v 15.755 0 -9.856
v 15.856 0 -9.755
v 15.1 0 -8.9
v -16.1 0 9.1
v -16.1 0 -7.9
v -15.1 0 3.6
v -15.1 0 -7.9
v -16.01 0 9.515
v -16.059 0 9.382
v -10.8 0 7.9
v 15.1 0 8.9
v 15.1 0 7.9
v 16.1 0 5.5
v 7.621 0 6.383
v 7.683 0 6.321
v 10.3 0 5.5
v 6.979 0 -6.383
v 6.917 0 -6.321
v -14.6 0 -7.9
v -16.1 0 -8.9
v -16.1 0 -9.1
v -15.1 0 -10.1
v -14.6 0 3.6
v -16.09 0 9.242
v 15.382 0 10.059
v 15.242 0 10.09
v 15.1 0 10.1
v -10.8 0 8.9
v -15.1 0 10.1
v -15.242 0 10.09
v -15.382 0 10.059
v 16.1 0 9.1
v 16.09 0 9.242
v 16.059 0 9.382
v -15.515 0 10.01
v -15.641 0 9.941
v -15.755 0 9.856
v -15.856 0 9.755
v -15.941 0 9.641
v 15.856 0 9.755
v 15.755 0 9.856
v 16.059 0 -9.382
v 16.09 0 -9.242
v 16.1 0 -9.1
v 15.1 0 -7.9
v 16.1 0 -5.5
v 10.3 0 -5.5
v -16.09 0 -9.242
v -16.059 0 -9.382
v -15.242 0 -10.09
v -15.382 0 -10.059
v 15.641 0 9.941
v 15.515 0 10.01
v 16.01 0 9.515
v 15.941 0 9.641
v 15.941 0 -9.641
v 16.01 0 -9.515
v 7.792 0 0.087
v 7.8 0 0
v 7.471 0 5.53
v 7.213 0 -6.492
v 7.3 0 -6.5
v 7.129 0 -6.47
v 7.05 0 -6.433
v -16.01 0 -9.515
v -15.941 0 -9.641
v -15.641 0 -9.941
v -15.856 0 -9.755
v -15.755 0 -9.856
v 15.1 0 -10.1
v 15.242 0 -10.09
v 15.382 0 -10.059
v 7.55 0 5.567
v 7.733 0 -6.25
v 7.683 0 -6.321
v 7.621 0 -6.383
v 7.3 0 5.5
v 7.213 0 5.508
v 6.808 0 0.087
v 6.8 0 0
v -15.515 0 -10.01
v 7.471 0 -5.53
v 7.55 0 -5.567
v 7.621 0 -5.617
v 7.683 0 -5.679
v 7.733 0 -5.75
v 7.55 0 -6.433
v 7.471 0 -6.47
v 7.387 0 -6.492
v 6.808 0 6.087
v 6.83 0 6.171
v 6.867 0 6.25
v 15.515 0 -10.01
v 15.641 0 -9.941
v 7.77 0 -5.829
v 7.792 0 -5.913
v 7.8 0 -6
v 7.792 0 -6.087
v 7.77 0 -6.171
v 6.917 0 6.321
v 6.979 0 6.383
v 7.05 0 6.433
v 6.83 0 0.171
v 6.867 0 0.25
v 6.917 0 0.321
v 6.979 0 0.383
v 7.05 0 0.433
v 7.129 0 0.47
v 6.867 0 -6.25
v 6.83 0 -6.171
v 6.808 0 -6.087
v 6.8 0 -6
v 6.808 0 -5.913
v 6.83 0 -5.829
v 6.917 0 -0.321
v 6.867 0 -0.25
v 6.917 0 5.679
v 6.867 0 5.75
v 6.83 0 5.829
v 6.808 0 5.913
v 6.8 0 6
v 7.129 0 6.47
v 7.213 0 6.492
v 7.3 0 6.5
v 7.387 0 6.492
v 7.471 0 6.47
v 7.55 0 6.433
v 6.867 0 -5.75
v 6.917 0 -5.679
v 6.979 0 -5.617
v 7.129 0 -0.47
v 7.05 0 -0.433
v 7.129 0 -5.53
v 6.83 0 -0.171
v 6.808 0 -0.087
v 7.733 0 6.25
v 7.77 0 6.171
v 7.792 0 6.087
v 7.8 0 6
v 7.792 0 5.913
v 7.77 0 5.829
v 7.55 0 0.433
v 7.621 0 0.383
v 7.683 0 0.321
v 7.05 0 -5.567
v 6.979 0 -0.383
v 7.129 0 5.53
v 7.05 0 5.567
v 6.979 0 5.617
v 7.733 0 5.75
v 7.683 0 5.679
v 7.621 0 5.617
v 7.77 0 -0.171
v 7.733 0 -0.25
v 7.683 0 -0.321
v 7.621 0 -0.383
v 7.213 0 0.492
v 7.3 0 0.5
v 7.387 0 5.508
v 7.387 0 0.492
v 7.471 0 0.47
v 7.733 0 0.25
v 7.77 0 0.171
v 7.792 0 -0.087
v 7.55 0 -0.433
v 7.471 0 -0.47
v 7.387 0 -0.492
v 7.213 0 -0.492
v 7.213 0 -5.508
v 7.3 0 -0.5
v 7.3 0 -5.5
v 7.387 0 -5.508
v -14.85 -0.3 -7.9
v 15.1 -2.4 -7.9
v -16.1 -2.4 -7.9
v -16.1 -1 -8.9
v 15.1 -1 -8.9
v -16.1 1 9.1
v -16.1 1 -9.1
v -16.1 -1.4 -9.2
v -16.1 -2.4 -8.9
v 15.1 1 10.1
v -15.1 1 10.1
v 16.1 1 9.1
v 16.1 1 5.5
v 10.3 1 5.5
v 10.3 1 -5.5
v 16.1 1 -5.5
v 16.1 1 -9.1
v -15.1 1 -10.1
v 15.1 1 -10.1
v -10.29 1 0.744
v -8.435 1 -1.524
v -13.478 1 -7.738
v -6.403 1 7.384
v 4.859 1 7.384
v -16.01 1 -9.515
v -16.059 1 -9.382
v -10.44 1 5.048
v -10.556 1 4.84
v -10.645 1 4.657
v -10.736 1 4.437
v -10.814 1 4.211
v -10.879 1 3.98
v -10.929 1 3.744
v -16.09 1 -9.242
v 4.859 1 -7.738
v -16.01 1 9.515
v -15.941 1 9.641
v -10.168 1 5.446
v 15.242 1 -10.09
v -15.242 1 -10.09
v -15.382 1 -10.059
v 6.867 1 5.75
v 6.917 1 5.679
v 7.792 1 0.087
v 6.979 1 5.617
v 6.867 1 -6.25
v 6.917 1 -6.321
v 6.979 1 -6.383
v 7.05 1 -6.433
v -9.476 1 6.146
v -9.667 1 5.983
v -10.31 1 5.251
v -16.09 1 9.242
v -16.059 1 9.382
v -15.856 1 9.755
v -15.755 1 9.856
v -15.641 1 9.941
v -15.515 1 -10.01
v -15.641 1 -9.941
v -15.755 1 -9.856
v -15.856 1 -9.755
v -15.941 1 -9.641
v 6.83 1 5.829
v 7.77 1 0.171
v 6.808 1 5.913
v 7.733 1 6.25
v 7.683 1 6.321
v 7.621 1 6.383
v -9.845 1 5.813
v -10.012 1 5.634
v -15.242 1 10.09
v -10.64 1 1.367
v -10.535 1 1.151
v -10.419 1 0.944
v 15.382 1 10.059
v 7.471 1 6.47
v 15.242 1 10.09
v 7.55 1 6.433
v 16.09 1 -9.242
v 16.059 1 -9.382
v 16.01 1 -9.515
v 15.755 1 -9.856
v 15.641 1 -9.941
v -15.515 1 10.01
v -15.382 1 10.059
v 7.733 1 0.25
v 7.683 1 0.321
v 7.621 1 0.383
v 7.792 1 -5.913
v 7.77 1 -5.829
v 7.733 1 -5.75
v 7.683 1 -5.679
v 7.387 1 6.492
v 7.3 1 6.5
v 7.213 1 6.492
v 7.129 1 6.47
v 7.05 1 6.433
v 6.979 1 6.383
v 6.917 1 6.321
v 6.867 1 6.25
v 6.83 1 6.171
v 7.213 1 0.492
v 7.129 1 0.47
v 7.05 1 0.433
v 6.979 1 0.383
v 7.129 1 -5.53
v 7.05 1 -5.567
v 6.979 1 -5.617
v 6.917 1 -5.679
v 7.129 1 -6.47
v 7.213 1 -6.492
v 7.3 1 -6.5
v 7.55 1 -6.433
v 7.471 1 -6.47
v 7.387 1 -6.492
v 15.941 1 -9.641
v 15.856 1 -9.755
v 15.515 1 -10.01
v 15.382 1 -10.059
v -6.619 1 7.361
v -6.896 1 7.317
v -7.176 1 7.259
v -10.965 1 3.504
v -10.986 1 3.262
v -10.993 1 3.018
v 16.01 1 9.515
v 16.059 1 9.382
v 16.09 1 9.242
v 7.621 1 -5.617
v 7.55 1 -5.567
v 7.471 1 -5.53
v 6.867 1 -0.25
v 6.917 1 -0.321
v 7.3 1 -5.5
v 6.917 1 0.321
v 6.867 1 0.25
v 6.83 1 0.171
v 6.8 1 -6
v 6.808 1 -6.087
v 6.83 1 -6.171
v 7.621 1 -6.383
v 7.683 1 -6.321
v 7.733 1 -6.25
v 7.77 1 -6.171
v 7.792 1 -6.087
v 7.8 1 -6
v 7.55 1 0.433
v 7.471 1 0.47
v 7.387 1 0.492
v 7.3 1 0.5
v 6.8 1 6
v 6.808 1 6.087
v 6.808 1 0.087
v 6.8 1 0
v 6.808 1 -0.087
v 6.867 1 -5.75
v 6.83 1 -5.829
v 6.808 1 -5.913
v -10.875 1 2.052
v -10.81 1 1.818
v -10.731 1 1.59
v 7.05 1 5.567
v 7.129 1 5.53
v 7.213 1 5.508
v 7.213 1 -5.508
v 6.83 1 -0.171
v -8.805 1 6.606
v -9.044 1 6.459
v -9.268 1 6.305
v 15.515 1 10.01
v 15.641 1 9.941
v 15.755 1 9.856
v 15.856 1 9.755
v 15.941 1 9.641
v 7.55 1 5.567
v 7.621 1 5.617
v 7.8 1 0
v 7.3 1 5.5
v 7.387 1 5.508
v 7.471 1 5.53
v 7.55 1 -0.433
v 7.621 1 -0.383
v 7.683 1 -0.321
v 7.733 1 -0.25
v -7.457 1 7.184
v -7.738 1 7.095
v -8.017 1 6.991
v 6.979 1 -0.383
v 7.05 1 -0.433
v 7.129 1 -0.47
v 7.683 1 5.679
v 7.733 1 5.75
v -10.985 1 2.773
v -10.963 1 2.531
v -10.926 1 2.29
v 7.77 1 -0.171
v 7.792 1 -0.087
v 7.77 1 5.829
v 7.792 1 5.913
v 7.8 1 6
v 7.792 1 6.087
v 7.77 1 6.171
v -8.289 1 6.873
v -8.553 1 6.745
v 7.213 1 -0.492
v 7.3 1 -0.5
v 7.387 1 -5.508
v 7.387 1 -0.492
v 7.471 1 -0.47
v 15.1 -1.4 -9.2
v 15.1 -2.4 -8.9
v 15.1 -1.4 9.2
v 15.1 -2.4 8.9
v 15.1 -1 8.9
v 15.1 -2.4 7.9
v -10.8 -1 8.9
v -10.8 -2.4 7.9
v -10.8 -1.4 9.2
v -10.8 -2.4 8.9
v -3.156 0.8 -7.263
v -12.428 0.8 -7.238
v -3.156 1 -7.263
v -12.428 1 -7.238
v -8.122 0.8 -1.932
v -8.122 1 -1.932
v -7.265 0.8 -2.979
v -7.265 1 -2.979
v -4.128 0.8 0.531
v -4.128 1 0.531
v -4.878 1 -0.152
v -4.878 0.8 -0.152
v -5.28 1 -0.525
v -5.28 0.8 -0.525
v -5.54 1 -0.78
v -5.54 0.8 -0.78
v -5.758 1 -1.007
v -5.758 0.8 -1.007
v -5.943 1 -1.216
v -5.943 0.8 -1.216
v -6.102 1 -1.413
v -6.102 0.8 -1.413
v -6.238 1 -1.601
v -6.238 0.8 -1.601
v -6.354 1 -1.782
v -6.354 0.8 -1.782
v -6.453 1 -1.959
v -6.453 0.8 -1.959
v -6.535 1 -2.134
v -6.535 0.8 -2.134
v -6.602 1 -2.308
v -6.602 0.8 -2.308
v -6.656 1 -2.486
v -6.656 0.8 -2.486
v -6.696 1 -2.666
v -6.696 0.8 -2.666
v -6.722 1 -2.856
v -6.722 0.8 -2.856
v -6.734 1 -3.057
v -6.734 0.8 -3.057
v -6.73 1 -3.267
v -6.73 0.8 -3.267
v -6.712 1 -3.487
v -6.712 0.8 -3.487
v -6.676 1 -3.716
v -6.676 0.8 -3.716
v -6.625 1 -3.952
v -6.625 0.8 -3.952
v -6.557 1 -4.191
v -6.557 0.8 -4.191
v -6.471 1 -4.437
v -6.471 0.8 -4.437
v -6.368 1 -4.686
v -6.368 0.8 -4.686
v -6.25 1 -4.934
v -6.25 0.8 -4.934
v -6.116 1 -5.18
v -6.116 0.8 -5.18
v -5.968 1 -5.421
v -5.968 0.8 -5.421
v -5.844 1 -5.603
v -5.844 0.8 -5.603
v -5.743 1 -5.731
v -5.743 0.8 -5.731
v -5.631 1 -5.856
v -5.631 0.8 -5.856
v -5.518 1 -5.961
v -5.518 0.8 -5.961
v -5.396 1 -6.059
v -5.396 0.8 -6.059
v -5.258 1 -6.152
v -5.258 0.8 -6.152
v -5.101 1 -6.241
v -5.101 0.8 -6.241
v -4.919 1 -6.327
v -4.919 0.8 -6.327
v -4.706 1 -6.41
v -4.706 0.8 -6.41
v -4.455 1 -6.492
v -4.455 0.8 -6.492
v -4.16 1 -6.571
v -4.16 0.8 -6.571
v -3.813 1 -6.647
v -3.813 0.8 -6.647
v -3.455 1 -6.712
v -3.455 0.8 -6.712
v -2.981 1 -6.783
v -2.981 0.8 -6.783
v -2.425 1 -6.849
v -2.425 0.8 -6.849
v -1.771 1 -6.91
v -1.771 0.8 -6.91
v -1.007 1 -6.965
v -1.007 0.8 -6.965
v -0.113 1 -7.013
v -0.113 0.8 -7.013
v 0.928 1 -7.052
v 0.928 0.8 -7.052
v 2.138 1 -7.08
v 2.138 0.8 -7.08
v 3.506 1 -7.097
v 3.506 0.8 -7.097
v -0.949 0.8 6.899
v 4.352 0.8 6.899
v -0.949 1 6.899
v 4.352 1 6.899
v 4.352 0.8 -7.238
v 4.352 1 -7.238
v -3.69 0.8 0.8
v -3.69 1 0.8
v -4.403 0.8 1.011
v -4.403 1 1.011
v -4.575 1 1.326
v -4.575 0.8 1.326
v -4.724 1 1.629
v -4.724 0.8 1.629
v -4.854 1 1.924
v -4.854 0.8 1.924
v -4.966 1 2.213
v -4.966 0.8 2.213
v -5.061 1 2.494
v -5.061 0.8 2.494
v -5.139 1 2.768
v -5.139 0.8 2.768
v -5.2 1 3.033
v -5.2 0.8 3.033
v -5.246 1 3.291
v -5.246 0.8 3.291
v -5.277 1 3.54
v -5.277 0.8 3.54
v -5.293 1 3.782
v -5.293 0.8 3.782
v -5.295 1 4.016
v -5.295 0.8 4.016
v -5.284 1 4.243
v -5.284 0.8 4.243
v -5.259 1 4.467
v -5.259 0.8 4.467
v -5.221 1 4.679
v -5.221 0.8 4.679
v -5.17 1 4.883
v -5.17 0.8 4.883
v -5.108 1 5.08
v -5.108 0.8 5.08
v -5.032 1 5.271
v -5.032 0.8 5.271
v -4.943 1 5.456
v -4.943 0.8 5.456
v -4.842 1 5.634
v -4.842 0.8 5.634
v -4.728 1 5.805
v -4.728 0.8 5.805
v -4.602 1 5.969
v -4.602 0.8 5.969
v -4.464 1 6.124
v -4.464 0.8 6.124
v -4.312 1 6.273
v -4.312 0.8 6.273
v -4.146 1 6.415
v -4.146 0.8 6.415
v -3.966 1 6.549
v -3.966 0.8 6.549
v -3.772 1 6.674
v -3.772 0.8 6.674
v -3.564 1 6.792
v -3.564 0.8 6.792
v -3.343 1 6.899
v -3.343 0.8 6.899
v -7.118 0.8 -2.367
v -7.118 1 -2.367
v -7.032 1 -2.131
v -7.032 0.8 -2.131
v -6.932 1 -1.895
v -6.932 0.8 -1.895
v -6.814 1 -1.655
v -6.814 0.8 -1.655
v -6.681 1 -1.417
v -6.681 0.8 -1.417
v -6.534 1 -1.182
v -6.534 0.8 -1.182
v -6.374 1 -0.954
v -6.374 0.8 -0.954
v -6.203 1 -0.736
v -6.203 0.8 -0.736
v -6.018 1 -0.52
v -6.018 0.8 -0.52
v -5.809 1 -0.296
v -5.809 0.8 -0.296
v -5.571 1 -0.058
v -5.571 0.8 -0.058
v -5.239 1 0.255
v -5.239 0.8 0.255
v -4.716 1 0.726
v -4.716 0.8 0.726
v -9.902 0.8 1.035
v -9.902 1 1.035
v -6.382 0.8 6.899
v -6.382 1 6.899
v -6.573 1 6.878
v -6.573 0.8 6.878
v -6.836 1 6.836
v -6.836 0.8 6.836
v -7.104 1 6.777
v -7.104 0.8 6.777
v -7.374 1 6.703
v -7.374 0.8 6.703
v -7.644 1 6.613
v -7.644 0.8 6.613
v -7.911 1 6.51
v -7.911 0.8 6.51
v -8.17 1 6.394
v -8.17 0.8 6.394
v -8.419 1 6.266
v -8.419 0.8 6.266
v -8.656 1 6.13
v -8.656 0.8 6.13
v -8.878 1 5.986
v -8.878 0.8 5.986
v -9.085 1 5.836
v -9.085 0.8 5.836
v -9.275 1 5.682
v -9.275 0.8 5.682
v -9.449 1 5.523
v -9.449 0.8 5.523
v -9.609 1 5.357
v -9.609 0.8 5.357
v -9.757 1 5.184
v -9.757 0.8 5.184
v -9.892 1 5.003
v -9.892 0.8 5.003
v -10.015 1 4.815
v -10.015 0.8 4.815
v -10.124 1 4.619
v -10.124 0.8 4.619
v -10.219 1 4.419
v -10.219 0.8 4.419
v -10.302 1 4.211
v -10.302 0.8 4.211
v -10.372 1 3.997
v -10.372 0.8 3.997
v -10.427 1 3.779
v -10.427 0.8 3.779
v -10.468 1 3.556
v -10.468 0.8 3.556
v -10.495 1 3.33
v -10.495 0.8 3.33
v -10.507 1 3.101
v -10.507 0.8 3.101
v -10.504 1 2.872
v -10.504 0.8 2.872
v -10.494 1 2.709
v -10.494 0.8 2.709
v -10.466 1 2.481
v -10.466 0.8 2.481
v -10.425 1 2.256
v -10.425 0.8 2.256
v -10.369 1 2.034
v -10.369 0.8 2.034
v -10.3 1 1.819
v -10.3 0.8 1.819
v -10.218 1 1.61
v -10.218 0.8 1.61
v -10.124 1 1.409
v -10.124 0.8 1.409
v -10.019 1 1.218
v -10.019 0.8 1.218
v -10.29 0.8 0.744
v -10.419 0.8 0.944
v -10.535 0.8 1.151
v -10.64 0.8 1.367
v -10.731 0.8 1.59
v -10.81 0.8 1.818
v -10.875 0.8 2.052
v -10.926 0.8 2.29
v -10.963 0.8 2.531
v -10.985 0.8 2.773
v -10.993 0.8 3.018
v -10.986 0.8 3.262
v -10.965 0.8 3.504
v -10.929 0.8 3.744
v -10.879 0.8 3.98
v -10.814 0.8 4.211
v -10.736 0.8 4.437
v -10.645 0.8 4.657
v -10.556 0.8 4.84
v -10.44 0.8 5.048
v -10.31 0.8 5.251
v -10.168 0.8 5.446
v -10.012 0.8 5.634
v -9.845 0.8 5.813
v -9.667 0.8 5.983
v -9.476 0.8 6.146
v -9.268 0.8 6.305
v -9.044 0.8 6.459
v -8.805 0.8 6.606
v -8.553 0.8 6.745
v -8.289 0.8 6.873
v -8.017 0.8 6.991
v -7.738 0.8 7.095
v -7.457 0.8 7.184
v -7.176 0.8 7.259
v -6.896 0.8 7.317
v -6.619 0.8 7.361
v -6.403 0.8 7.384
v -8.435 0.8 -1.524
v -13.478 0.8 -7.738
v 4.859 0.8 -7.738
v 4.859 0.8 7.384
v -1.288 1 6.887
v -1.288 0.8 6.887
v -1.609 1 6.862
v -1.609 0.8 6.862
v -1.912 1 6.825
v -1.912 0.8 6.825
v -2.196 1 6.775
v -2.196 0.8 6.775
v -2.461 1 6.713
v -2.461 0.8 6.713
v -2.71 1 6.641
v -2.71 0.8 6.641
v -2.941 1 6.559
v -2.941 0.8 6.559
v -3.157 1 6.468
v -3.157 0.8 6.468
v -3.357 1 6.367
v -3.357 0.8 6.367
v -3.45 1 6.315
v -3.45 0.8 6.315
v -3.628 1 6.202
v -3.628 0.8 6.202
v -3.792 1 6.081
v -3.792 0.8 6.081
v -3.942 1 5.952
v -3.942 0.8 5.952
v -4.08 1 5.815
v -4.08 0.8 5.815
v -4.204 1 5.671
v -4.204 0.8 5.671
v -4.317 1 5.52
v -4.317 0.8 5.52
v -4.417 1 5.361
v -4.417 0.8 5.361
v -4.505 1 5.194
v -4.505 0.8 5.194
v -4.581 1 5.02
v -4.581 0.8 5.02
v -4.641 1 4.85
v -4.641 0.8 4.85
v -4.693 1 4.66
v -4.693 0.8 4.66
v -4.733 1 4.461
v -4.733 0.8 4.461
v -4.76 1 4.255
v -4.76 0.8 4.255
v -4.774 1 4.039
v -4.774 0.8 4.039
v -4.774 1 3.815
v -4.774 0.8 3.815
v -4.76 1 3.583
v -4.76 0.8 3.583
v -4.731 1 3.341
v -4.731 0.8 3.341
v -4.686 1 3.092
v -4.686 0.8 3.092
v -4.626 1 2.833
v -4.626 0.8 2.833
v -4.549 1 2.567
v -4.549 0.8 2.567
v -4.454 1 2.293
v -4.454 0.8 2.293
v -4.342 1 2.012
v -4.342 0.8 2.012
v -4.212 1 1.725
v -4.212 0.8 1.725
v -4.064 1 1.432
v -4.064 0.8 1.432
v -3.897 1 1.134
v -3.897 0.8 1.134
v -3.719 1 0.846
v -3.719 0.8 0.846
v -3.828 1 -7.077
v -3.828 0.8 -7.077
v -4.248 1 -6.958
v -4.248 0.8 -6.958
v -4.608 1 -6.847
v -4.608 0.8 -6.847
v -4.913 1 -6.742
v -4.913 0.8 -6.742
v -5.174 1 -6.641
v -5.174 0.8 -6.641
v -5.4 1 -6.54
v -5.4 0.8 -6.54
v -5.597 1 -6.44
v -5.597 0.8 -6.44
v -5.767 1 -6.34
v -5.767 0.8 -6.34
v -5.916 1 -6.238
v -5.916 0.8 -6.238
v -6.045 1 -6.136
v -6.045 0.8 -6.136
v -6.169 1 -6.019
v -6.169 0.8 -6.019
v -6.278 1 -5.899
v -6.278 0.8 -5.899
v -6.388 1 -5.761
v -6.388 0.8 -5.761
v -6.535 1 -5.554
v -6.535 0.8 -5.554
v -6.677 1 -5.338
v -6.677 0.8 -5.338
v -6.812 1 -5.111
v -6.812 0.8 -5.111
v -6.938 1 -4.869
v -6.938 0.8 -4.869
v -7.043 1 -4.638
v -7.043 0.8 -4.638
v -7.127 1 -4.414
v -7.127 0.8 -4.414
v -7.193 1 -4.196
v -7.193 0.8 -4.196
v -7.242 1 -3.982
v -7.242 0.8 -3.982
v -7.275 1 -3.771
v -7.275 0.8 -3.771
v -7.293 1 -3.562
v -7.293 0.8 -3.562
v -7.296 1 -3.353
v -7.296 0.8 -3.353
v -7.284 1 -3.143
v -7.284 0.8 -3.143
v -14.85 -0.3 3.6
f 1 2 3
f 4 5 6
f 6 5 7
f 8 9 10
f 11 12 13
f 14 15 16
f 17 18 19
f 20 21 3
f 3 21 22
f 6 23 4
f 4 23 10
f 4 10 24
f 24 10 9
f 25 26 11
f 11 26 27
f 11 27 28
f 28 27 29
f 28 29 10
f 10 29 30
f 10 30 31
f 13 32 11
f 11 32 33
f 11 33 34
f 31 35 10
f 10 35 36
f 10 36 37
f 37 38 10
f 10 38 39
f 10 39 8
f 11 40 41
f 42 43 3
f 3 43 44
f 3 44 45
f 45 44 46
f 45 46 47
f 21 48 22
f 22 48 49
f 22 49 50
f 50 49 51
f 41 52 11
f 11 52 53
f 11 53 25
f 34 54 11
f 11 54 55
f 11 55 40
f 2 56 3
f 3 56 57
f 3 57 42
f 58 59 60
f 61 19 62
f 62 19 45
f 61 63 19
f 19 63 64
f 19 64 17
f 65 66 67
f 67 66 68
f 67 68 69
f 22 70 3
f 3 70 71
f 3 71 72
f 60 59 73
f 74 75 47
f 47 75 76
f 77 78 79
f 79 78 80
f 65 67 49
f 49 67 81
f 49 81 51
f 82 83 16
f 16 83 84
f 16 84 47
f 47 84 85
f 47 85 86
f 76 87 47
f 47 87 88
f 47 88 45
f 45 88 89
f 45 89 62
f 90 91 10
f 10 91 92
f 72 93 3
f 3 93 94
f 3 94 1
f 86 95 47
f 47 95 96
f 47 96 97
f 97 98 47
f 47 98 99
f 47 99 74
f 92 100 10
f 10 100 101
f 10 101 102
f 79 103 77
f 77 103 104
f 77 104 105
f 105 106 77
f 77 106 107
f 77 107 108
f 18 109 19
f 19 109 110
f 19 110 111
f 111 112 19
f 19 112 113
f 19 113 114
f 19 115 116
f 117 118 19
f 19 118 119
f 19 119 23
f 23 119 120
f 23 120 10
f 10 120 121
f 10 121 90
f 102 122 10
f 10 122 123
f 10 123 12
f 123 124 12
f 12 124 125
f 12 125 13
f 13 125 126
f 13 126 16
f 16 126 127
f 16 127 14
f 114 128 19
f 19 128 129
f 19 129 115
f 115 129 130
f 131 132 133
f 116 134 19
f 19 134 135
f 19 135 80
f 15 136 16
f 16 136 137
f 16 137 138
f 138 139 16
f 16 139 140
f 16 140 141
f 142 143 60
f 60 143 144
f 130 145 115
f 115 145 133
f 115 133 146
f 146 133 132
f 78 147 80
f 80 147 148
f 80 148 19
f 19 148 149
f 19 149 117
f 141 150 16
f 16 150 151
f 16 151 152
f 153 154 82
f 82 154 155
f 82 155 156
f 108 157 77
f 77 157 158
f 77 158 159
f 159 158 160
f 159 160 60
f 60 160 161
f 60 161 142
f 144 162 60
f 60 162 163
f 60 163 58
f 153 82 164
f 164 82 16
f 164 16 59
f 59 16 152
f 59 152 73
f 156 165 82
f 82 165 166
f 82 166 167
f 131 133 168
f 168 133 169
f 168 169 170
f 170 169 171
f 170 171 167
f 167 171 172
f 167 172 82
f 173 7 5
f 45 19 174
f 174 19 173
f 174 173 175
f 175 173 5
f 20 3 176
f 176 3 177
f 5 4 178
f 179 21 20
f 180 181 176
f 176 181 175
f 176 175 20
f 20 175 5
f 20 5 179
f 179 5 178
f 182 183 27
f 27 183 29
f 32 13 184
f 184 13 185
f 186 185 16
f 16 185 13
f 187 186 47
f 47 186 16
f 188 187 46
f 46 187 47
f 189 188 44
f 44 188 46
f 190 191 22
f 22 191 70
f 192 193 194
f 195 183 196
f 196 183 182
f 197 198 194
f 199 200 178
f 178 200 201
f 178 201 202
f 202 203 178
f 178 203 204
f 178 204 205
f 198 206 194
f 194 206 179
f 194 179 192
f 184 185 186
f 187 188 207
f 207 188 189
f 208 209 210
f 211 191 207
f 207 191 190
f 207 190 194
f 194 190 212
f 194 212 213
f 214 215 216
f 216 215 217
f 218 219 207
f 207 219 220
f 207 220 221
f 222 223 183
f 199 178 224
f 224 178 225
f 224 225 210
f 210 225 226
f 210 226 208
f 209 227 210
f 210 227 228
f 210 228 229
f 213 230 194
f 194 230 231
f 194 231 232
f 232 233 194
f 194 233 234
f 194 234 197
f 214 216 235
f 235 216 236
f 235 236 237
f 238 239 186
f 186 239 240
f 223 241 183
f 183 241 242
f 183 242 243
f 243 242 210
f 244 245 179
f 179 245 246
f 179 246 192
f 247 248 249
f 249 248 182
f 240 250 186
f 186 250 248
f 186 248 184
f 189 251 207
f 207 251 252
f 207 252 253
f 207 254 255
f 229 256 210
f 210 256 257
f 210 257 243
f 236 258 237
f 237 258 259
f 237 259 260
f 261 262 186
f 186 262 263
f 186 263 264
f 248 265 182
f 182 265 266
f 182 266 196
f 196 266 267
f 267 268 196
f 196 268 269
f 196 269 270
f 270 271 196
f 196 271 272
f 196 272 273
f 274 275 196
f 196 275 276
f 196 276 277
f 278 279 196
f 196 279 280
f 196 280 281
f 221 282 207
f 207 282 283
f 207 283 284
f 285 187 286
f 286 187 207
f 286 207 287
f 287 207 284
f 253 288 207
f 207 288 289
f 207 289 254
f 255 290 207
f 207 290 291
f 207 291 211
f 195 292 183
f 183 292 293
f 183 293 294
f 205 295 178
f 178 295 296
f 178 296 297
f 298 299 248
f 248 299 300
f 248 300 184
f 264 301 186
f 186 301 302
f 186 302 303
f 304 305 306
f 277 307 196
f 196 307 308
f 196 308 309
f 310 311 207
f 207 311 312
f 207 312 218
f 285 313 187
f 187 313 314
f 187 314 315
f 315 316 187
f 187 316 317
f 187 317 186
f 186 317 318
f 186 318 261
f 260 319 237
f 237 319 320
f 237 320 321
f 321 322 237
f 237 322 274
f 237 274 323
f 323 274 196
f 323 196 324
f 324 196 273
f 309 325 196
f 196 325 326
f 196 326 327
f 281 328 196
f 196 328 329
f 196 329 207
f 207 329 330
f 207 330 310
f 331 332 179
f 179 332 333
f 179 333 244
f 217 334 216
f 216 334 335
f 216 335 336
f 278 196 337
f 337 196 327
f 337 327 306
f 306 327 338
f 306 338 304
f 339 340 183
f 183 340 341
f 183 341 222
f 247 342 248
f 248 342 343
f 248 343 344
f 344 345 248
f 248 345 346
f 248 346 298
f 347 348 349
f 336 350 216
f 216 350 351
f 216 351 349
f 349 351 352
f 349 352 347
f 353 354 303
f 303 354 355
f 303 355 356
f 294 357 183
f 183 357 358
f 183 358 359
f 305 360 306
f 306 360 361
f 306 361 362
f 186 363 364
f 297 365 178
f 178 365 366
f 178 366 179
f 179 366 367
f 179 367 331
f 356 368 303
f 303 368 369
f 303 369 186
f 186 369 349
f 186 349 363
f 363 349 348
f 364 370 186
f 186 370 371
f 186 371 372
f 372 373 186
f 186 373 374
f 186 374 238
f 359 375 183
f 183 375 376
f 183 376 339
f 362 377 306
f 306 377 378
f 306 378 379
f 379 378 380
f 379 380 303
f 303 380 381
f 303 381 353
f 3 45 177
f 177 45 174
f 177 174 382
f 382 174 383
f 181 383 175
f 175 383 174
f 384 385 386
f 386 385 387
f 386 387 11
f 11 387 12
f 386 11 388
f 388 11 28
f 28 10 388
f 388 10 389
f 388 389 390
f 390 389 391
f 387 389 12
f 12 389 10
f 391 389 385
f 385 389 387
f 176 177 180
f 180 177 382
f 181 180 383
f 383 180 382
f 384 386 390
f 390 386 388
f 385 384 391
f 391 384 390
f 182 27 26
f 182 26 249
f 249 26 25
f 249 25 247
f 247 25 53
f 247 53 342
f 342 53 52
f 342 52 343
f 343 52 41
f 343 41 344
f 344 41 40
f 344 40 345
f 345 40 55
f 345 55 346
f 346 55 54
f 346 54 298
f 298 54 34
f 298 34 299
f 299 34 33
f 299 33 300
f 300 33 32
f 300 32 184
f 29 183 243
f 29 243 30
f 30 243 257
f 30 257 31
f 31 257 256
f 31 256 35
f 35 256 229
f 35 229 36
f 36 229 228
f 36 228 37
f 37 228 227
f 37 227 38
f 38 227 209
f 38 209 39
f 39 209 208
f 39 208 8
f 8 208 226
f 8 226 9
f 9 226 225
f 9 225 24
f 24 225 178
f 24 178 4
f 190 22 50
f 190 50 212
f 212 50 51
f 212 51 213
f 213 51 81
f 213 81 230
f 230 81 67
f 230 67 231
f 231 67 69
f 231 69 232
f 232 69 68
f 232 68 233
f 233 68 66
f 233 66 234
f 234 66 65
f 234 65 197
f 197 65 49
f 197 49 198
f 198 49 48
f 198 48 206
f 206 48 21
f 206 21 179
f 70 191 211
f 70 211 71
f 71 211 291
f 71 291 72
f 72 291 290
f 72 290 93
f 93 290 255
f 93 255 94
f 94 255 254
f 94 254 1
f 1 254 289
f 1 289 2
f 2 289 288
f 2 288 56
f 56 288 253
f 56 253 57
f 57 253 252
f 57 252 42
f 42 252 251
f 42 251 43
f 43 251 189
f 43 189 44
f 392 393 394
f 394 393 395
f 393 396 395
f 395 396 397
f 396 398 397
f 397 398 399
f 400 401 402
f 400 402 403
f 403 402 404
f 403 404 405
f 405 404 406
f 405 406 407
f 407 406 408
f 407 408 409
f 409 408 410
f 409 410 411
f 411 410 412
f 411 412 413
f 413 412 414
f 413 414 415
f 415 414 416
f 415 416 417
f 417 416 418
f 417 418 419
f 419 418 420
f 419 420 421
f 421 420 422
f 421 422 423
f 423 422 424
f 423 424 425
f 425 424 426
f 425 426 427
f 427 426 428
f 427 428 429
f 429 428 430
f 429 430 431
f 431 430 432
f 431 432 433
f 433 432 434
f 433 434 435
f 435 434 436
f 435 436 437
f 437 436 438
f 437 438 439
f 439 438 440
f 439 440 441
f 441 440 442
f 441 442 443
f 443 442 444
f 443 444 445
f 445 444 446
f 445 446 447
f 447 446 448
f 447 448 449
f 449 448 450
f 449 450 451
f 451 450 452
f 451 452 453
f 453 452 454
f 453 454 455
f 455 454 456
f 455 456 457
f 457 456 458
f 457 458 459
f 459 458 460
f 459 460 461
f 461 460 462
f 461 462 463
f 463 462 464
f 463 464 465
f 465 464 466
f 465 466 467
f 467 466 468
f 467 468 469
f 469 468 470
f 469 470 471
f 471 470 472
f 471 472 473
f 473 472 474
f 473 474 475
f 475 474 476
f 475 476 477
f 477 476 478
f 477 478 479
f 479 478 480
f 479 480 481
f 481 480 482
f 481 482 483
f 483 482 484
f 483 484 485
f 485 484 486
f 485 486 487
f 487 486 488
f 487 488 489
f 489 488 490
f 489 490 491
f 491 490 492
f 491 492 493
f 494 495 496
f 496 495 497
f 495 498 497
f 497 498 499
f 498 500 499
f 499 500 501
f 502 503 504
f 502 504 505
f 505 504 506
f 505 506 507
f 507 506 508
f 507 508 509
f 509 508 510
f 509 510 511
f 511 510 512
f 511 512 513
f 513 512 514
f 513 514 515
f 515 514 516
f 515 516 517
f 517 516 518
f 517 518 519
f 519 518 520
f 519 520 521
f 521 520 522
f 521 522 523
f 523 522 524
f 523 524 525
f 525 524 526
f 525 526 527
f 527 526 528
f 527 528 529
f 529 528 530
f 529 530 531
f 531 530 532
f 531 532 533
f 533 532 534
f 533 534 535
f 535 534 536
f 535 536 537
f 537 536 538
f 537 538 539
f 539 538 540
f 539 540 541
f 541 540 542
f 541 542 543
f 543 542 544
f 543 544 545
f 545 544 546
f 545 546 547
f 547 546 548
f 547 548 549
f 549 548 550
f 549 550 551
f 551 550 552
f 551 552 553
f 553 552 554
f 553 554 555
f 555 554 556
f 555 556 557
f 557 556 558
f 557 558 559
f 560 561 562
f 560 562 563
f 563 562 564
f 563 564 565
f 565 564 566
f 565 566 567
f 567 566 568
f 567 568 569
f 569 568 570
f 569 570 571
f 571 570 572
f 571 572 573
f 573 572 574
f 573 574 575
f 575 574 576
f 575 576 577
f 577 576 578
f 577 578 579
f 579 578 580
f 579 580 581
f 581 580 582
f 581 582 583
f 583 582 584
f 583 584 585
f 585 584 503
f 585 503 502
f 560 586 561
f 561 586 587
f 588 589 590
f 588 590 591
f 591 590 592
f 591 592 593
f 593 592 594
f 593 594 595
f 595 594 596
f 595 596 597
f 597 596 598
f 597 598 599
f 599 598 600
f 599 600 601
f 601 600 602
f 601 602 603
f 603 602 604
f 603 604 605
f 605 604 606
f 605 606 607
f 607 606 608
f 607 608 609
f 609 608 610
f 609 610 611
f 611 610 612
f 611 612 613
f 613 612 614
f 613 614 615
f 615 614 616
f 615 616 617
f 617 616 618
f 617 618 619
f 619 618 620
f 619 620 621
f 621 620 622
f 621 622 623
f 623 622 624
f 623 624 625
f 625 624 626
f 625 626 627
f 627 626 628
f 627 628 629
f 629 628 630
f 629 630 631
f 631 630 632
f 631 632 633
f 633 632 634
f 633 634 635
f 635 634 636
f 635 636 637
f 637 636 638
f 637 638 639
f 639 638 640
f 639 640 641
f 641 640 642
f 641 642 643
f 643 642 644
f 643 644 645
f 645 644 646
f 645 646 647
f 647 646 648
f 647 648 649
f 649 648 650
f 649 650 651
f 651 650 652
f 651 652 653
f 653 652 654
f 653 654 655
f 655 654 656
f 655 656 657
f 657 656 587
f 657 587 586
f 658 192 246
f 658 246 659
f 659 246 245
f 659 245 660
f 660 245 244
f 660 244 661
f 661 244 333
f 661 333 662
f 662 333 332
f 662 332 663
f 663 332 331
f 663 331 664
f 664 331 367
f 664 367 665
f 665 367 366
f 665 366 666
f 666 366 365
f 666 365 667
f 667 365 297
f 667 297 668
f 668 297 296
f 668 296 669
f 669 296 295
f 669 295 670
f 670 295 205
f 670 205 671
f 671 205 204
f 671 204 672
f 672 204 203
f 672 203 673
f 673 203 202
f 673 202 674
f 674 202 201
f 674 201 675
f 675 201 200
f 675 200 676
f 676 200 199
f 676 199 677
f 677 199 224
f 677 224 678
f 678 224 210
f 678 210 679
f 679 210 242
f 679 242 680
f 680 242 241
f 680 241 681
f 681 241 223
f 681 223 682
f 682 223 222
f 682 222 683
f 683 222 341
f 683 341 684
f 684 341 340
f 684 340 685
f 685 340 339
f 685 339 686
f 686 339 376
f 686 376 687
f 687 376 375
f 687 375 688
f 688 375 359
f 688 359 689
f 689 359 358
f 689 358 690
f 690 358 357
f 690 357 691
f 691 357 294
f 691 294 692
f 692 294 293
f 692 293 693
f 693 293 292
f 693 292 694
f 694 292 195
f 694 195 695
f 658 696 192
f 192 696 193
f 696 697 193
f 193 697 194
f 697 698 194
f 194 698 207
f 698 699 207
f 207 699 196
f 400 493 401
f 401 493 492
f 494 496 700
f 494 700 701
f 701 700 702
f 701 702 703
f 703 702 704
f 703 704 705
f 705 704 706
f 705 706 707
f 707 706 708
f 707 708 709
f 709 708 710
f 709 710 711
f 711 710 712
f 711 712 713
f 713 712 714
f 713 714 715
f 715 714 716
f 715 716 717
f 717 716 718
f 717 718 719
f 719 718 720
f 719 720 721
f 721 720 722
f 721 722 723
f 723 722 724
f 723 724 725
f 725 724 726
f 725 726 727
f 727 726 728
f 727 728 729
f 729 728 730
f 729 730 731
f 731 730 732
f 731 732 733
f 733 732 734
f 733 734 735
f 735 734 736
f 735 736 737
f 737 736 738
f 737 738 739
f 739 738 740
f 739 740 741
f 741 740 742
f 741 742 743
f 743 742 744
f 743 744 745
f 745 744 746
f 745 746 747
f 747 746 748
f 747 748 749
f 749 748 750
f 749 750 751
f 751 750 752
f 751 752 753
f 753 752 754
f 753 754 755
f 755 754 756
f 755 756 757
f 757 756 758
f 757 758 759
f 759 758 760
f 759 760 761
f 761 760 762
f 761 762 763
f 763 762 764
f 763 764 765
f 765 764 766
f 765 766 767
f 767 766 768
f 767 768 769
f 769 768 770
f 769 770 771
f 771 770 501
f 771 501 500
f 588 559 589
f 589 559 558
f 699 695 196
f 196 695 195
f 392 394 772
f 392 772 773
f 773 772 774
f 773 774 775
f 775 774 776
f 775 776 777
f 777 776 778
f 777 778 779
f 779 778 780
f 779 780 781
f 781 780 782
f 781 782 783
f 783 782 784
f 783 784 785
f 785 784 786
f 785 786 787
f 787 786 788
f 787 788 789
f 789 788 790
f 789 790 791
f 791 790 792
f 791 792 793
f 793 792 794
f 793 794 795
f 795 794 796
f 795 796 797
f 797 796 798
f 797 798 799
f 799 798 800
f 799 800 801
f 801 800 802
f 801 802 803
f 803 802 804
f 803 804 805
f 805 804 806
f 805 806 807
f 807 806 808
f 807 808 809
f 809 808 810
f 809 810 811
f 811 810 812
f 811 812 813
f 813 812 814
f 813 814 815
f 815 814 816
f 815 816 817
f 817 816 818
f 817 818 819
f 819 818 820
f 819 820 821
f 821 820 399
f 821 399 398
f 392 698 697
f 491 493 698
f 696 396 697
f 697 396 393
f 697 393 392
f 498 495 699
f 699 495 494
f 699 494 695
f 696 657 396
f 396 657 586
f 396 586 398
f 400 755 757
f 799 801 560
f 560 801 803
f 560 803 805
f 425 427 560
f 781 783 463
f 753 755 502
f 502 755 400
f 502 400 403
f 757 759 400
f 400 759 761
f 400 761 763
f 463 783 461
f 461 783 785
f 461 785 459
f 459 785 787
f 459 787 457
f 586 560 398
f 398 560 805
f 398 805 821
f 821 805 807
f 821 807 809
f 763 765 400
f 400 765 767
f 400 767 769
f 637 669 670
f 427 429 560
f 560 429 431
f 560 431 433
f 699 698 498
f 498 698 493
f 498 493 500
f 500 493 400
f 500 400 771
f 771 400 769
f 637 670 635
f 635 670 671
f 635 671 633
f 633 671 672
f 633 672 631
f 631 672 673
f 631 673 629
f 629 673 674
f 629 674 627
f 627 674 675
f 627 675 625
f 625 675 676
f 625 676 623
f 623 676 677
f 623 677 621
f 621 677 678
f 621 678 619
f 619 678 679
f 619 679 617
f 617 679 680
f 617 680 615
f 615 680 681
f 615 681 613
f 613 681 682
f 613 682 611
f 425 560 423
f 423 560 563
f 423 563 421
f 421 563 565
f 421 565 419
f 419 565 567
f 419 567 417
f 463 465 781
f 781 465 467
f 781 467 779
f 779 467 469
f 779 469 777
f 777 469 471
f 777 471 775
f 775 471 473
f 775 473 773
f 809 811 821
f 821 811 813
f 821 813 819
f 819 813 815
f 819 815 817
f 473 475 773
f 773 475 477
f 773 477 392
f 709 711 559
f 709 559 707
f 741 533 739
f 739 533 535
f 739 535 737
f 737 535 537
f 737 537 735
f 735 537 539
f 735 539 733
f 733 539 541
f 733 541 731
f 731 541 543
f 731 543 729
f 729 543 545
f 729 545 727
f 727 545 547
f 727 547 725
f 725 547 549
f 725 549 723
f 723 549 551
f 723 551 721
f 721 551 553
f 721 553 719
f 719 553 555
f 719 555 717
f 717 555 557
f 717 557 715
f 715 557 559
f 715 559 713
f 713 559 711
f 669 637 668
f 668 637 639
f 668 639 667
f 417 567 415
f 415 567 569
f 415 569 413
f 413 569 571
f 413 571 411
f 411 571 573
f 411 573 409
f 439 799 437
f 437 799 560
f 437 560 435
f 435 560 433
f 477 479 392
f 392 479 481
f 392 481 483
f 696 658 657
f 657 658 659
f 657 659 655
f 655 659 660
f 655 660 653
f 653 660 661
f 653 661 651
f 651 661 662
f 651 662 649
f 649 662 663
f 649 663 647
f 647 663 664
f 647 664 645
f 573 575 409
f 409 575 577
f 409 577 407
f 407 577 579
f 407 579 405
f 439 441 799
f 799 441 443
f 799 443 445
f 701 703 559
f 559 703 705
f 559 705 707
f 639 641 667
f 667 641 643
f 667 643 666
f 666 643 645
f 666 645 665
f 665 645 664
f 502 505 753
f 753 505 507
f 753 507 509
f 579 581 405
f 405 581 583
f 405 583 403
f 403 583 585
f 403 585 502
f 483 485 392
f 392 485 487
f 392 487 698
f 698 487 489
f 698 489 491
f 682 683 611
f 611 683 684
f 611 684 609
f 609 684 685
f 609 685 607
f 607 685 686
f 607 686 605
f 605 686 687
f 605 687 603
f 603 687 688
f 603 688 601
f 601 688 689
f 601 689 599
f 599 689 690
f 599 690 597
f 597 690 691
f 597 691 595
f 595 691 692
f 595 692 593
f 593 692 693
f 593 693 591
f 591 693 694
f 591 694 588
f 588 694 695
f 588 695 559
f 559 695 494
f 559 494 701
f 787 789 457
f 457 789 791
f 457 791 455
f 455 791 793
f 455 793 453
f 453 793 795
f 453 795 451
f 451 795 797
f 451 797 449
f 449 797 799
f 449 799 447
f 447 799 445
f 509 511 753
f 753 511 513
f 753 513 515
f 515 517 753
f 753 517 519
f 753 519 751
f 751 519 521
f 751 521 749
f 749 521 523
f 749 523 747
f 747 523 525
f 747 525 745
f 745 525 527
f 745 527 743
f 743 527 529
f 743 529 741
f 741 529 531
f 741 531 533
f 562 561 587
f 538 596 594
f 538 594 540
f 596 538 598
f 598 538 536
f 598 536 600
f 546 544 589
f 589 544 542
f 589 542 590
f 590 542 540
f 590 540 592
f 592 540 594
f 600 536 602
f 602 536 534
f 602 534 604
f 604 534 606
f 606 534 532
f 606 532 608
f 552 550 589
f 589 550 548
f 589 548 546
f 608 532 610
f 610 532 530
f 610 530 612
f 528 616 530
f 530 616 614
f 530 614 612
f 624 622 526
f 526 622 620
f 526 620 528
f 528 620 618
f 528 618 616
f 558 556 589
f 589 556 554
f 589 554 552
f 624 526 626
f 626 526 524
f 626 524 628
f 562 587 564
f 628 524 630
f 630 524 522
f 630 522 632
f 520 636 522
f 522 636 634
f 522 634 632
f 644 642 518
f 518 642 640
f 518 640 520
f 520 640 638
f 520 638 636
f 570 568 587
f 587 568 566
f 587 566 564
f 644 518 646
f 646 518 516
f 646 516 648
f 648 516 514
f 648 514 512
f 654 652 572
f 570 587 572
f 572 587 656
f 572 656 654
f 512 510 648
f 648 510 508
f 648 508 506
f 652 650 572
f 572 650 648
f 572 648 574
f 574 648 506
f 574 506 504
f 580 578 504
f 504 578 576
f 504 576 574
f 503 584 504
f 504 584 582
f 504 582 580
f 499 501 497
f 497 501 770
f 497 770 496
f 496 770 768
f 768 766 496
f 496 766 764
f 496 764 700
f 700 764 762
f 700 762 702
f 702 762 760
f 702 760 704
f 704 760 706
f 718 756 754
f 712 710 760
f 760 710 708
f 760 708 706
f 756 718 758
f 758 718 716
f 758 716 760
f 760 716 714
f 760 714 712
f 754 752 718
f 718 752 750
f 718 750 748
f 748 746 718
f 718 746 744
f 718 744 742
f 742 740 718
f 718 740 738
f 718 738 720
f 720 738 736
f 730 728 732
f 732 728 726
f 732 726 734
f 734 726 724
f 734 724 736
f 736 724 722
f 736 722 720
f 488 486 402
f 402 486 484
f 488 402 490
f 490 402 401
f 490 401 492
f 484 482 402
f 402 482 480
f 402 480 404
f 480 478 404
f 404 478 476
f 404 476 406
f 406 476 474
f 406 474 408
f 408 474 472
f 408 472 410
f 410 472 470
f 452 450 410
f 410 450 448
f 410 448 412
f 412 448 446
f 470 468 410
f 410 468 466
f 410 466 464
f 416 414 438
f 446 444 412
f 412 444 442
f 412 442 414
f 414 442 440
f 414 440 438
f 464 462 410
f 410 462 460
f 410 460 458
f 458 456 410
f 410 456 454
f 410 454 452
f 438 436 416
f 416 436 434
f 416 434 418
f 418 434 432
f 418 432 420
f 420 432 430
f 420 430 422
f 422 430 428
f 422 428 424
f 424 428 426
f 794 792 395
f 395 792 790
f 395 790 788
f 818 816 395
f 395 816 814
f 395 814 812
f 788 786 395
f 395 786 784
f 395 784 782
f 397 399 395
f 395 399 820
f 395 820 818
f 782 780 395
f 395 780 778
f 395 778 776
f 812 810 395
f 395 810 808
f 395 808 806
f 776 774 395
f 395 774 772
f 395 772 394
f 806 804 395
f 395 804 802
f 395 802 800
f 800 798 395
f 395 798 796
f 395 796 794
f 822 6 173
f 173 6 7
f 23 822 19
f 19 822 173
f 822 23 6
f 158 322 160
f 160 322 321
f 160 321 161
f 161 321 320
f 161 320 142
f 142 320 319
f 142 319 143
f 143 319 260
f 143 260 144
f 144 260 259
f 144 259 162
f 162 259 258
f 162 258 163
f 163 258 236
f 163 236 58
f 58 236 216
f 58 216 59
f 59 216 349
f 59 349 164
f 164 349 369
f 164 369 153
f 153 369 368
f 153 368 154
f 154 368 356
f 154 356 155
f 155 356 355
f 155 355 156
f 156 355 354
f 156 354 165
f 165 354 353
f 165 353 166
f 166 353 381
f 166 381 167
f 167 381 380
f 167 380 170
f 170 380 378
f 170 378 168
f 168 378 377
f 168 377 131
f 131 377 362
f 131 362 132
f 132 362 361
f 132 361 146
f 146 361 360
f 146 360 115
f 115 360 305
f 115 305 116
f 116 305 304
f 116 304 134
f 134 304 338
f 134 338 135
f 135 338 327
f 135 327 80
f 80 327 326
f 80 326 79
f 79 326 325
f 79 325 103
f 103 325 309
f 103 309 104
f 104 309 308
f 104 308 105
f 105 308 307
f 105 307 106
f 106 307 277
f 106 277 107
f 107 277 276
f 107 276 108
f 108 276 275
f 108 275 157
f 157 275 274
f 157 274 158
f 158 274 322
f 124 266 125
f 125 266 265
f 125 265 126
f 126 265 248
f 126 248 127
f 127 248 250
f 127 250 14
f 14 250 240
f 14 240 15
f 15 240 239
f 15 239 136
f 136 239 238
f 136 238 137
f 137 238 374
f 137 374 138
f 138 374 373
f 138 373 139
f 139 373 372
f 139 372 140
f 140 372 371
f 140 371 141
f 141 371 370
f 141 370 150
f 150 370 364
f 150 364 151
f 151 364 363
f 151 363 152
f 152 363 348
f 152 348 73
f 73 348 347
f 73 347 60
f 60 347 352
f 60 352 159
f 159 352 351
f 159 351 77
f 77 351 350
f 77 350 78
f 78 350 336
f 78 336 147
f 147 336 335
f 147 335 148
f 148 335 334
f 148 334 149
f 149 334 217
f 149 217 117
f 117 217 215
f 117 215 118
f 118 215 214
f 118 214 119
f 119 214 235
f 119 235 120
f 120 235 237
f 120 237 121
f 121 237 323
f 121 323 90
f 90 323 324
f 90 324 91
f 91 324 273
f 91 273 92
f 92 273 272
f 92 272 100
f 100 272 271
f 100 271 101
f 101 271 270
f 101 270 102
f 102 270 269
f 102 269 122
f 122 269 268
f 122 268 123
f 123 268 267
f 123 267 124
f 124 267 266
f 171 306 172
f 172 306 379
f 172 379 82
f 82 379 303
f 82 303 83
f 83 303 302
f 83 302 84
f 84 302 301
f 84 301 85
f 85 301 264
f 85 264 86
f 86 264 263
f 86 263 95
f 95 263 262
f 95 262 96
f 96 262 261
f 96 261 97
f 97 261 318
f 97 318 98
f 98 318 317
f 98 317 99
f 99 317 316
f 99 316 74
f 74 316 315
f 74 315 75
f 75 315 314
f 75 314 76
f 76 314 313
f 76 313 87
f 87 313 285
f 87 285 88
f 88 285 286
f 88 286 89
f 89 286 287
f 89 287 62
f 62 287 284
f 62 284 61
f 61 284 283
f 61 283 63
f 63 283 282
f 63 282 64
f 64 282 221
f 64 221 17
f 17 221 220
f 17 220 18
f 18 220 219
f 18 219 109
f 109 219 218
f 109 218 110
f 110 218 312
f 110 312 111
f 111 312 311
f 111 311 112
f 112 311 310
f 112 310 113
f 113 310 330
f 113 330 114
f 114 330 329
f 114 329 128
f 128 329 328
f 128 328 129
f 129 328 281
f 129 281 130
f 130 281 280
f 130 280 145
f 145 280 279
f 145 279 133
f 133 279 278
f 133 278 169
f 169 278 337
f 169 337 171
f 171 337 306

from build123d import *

# Parameters (mm, degrees)
BOSS_EXTRUDE1_DEPTH             = 1
BOSS_EXTRUDE2_DEPTH             = 2.4
BOSS_EXTRUDE3_REACH             = 18.1
BOSS_EXTRUDE3_DIRECTION_2_REACH = 18.1
BOSS_EXTRUDE4_DEPTH             = 5.3
FILLET1_R                       = 1
SKETCH5_W                       = 1
SKETCH5_H                       = 2.4
BOSS_EXTRUDE5_DEPTH             = 0.8
CUT_EXTRUDE1_DEPTH              = 0.2
BOSS_EXTRUDE6_DEPTH             = 11.5
SKETCH12_R                      = 0.5
CUT_EXTRUDE6_DEPTH              = 4.4


with BuildPart() as part:
    # Sketch1 → Boss-Extrude1 (new body)
    with BuildSketch(Plane(origin=(0, 0, 0), x_dir=(1, 0, 0), z_dir=(0, 1, 0))):
        Polygon((16.1, 5.5), (10.3, 5.5), (10.3, -5.5), (16.1, -5.5), (16.1, -10.1), (-16.1, -10.1), (-16.1, 10.1), (16.1, 10.1), align=None)
    extrude(amount=BOSS_EXTRUDE1_DEPTH)

    # Sketch2 → Boss-Extrude2 (add)
    with BuildSketch(Plane.XZ):
        Polygon((15.1, 8.9), (-10.8, 8.9), (-10.8, 7.9), (14.1, 7.9), (15.1, 7.9), align=None)
        Polygon((15.1, -8.9), (-15.3, -8.9), (-15.3, -7.9), (-14.3, -7.9), (14.1, -7.9), (15.1, -7.9), align=None)
    extrude(amount=BOSS_EXTRUDE2_DEPTH)

    # Boss-Extrude3: up to this face of the body (flat: up to its plane)
    boss_extrude3_end = Plane(part.part.faces().sort_by_distance((-10.8, -1.2, 8.4))[0])
    # Sketch3 → Boss-Extrude3 (add, up to the picked face)
    with BuildSketch(Plane(origin=(0, 0, 0), x_dir=(0, 0, -1), z_dir=(1, 0, 0)), mode=Mode.PRIVATE) as boss_extrude3_sk1:
        Polygon((8.9, -2.4), (9.2, -1.4), (8.9, -1), align=None)
    boss_extrude3_tool1 = split(extrude(boss_extrude3_sk1.sketch, amount=-BOSS_EXTRUDE3_REACH, mode=Mode.PRIVATE), bisect_by=boss_extrude3_end, keep=Keep.BOTH, mode=Mode.PRIVATE)
    add(boss_extrude3_tool1.solids().sort_by_distance((0, -1.6, -9))[0])
    # Sketch3 → Boss-Extrude3 (add, up to the picked face)
    with BuildSketch(Plane(origin=(0, 0, 0), x_dir=(0, 0, -1), z_dir=(1, 0, 0)), mode=Mode.PRIVATE) as boss_extrude3_sk2:
        Polygon((-8.9, -1), (-8.9, -2.4), (-9.2, -1.4), align=None)
    boss_extrude3_tool2 = split(extrude(boss_extrude3_sk2.sketch, amount=-BOSS_EXTRUDE3_REACH, mode=Mode.PRIVATE), bisect_by=boss_extrude3_end, keep=Keep.BOTH, mode=Mode.PRIVATE)
    add(boss_extrude3_tool2.solids().sort_by_distance((0, -1.6, 9))[0])

    # Boss-Extrude3 direction 2: up to this face of the body (flat: up to its plane)
    boss_extrude3_direction_2_end = Plane(part.part.faces().sort_by_distance((15.1, -1.2, -8.4))[0])
    # Sketch3 → Boss-Extrude3 direction 2 (add, up to the picked face)
    with BuildSketch(Plane(origin=(0, 0, 0), x_dir=(0, 0, -1), z_dir=(1, 0, 0)), mode=Mode.PRIVATE) as boss_extrude3_direction_2_sk1:
        Polygon((8.9, -2.4), (9.2, -1.4), (8.9, -1), align=None)
    boss_extrude3_direction_2_tool1 = split(extrude(boss_extrude3_direction_2_sk1.sketch, amount=BOSS_EXTRUDE3_DIRECTION_2_REACH, mode=Mode.PRIVATE), bisect_by=boss_extrude3_direction_2_end, keep=Keep.BOTH, mode=Mode.PRIVATE)
    add(boss_extrude3_direction_2_tool1.solids().sort_by_distance((0, -1.6, -9))[0])
    # Sketch3 → Boss-Extrude3 direction 2 (add, up to the picked face)
    with BuildSketch(Plane(origin=(0, 0, 0), x_dir=(0, 0, -1), z_dir=(1, 0, 0)), mode=Mode.PRIVATE) as boss_extrude3_direction_2_sk2:
        Polygon((-8.9, -1), (-8.9, -2.4), (-9.2, -1.4), align=None)
    boss_extrude3_direction_2_tool2 = split(extrude(boss_extrude3_direction_2_sk2.sketch, amount=BOSS_EXTRUDE3_DIRECTION_2_REACH, mode=Mode.PRIVATE), bisect_by=boss_extrude3_direction_2_end, keep=Keep.BOTH, mode=Mode.PRIVATE)
    add(boss_extrude3_direction_2_tool2.solids().sort_by_distance((0, -1.6, 9))[0])

    # Sketch4 → Boss-Extrude4 (add)
    with BuildSketch(Plane.ZY.offset(10.8)):
        Polygon((-8.9, -2.4), (-8.9, -1), (-9.2, -1.4), align=None)
    extrude(amount=BOSS_EXTRUDE4_DEPTH)

    # Fillet1
    fillet1_edges = [part.edges().sort_by_distance(p)[0] for p in [
        (-16.1, 0.5, 10.1),
        (16.1, 0.5, 10.1),
        (16.1, 0.5, -10.1),
        (-16.1, 0.5, -10.1),
    ]]
    fillet(fillet1_edges, radius=FILLET1_R)

    # Sketch5 → Boss-Extrude5 (add)
    with BuildSketch(Plane.ZY.offset(15.3)):
        with Locations((-8.4, -1.2)):
            Rectangle(SKETCH5_W, SKETCH5_H)
    extrude(amount=BOSS_EXTRUDE5_DEPTH)

    # Sketch9 → Cut-Extrude1 (cut)
    with BuildSketch(Plane(origin=(0, 1, 0), x_dir=(1, 0, 0), z_dir=(0, 1, 0))):
        with BuildLine():
            add(Edge.make_bspline(
                [(-3.342815403, -6.898771532), (-3.392032296, -6.876638055), (-3.827458148, -6.670816542), (-4.519691405, -6.171060382), (-5.129218139, -5.217739053), (-5.348913685, -4.118130523), (-5.230008041, -2.951908877), (-4.894461229, -1.967151288), (-4.588355912, -1.345070717), (-4.453256479, -1.098754494), (-4.417927521, -1.036087622), (-4.4033747, -1.01056214)],
                knots=[0.234294725, 0.234294725, 0.234294725, 0.234294725, 0.249919787, 0.375, 0.5, 0.625, 0.75, 0.875, 0.931300557, 0.942750464, 0.95062349, 0.95062349, 0.95062349, 0.95062349], degree=3))
            add(Edge.make_bspline(
                [(-3.342815403, -6.898771532), (-2.542251184, -7.287796887), (-1.658619274, -7.383876714)],
                knots=[0, 0, 0, 1, 1, 1], degree=2))
            Line((-1.658619274, -7.383876714), (-0.948898515, -7.383876714))
            Line((-0.948898515, -7.383876714), (4.858590941, -7.383876714))
            Line((4.858590941, -7.383876714), (4.858590941, 7.737734352))
            Line((4.858590941, 7.737734352), (-3.156218351, 7.262620046))
            add(Edge.make_bspline(
                [(-3.156218351, 7.262620046), (-4.204686525, 6.965216897), (-5.726735189, 6.631756812), (-7.011707154, 4.951403609), (-7.402848959, 3.939339374), (-7.264734741, 2.979074857)],
                knots=[0.007330404, 0.007330404, 0.007330404, 0.007330404, 0.225500981, 0.280065017, 0.552970764, 0.552970764, 0.552970764, 0.552970764], degree=3))
            Line((-7.264734741, 2.979074857), (-7.117659595, 2.367238768))
            add(Edge.make_bspline(
                [(-7.117659595, 2.367238768), (-6.960941749, 1.890945903), (-6.272373332, 0.577066844), (-5.102929425, -0.364874806), (-4.4033747, -1.01056214)],
                knots=[0.609519995, 0.609519995, 0.609519995, 0.609519995, 0.739586039, 0.961717779, 0.961717779, 0.961717779, 0.961717779], degree=3))
        make_face()
        with BuildLine():
            Line((-3.689882661, -0.799866909), (4.352426166, 7.237734352))
            Line((4.352426166, 7.237734352), (4.352426166, -6.898771532))
            Line((4.352426166, -6.898771532), (0.040224346, -6.898771532))
            Line((0.040224346, -6.898771532), (-0.948898515, -6.898771532))
            add(Edge.make_bspline(
                [(-0.948898515, -6.898771532), (-5.034514831, -6.847494081), (-5.677385917, -3.860270153), (-3.689882661, -0.799866909)],
                knots=[0, 0, 0, 0, 1, 1, 1, 1], degree=3))
        make_face(mode=Mode.SUBTRACT)
        with BuildLine():
            Line((3.506059361, 7.097194921), (-4.128123279, -0.530951144))
            add(Edge.make_bspline(
                [(3.506059361, 7.097194921), (-3.269089821, 7.048794638), (-5.221862409, 6.449276012), (-6.471825808, 4.765768499), (-7.041574265, 2.901212273), (-5.99383179, 1.096583313), (-4.827678003, 0.11473619), (-4.128123279, -0.530951144)],
                knots=[0.007330404, 0.007330404, 0.007330404, 0.007330404, 0.225500981, 0.28162106, 0.568531193, 0.739586039, 0.961717779, 0.961717779, 0.961717779, 0.961717779], degree=3))
        make_face(mode=Mode.SUBTRACT)
        with BuildLine():
            add(Edge.make_bspline(
                [(-3.342815403, -6.898771532), (-2.542251184, -7.287796887), (-1.658619274, -7.383876714)],
                knots=[0, 0, 0, 1, 1, 1], degree=2))
            Line((-3.342815403, -6.898771532), (-6.38229421, -6.898771532))
            add(Edge.make_bspline(
                [(-9.901940455, -1.035163603), (-10.745351374, -2.262822828), (-10.813877235, -5.298026757), (-7.511264228, -6.800208927), (-6.38229421, -6.898771532)],
                knots=[0, 0, 0, 0, 0.624222909, 1, 1, 1, 1], degree=3))
            Line((-9.901940455, -1.035163603), (-7.799125954, 1.534484145))
            Line((-7.799125954, 1.534484145), (-7.117659595, 2.367238768))
            Line((-7.117659595, 2.367238768), (-7.264734741, 2.979074857))
            Line((-7.264734741, 2.979074857), (-8.121685172, 1.931877995))
            Line((-8.121685172, 1.931877995), (-12.428377088, 7.237734352))
            Line((-12.428377088, 7.237734352), (-3.156218351, 7.262620046))
            Line((-3.156218351, 7.262620046), (4.858590941, 7.737734352))
            Line((4.858590941, 7.737734352), (-13.478199155, 7.737734352))
            Line((-13.478199155, 7.737734352), (-8.434565478, 1.523963693))
            Line((-8.434565478, 1.523963693), (-10.290254207, -0.743695372))
            add(Edge.make_bspline(
                [(-10.290254207, -0.743695372), (-10.681696867, -1.313474801), (-11.163382472, -2.664450315), (-10.847207421, -4.528853246), (-9.910083857, -5.835484729), (-8.881232555, -6.617480767), (-7.669601654, -7.167356574), (-6.83032417, -7.346607487), (-6.403429612, -7.383876714)],
                knots=[-0.002843331, -0.002843331, -0.002843331, -0.002843331, 0.248451523, 0.499746376, 0.625393803, 0.75104123, 0.876688657, 1.002336083, 1.002336083, 1.002336083, 1.002336083], degree=3))
            Line((-6.403429612, -7.383876714), (-1.658619274, -7.383876714))
        make_face()
    extrude(amount=-CUT_EXTRUDE1_DEPTH, mode=Mode.SUBTRACT)

    # Sketch11 → Boss-Extrude6 (add)
    with BuildSketch(Plane.XY.offset(-7.9)):
        Polygon((-15.1, 0), (-14.6, 0), (-14.85, -0.3), align=None)
    extrude(amount=BOSS_EXTRUDE6_DEPTH)

    # Sketch12 → Cut-Extrude6 (cut, through all)
    with BuildSketch(Plane(origin=(0, 1, 0), x_dir=(1, 0, 0), z_dir=(0, 1, 0))):
        with Locations((7.3, 0)):
            Circle(SKETCH12_R)
        with Locations((7.3, -6)):
            Circle(SKETCH12_R)
        with Locations((7.3, 6)):
            Circle(SKETCH12_R)
    extrude(amount=-CUT_EXTRUDE6_DEPTH, mode=Mode.SUBTRACT)


solid = part.part
